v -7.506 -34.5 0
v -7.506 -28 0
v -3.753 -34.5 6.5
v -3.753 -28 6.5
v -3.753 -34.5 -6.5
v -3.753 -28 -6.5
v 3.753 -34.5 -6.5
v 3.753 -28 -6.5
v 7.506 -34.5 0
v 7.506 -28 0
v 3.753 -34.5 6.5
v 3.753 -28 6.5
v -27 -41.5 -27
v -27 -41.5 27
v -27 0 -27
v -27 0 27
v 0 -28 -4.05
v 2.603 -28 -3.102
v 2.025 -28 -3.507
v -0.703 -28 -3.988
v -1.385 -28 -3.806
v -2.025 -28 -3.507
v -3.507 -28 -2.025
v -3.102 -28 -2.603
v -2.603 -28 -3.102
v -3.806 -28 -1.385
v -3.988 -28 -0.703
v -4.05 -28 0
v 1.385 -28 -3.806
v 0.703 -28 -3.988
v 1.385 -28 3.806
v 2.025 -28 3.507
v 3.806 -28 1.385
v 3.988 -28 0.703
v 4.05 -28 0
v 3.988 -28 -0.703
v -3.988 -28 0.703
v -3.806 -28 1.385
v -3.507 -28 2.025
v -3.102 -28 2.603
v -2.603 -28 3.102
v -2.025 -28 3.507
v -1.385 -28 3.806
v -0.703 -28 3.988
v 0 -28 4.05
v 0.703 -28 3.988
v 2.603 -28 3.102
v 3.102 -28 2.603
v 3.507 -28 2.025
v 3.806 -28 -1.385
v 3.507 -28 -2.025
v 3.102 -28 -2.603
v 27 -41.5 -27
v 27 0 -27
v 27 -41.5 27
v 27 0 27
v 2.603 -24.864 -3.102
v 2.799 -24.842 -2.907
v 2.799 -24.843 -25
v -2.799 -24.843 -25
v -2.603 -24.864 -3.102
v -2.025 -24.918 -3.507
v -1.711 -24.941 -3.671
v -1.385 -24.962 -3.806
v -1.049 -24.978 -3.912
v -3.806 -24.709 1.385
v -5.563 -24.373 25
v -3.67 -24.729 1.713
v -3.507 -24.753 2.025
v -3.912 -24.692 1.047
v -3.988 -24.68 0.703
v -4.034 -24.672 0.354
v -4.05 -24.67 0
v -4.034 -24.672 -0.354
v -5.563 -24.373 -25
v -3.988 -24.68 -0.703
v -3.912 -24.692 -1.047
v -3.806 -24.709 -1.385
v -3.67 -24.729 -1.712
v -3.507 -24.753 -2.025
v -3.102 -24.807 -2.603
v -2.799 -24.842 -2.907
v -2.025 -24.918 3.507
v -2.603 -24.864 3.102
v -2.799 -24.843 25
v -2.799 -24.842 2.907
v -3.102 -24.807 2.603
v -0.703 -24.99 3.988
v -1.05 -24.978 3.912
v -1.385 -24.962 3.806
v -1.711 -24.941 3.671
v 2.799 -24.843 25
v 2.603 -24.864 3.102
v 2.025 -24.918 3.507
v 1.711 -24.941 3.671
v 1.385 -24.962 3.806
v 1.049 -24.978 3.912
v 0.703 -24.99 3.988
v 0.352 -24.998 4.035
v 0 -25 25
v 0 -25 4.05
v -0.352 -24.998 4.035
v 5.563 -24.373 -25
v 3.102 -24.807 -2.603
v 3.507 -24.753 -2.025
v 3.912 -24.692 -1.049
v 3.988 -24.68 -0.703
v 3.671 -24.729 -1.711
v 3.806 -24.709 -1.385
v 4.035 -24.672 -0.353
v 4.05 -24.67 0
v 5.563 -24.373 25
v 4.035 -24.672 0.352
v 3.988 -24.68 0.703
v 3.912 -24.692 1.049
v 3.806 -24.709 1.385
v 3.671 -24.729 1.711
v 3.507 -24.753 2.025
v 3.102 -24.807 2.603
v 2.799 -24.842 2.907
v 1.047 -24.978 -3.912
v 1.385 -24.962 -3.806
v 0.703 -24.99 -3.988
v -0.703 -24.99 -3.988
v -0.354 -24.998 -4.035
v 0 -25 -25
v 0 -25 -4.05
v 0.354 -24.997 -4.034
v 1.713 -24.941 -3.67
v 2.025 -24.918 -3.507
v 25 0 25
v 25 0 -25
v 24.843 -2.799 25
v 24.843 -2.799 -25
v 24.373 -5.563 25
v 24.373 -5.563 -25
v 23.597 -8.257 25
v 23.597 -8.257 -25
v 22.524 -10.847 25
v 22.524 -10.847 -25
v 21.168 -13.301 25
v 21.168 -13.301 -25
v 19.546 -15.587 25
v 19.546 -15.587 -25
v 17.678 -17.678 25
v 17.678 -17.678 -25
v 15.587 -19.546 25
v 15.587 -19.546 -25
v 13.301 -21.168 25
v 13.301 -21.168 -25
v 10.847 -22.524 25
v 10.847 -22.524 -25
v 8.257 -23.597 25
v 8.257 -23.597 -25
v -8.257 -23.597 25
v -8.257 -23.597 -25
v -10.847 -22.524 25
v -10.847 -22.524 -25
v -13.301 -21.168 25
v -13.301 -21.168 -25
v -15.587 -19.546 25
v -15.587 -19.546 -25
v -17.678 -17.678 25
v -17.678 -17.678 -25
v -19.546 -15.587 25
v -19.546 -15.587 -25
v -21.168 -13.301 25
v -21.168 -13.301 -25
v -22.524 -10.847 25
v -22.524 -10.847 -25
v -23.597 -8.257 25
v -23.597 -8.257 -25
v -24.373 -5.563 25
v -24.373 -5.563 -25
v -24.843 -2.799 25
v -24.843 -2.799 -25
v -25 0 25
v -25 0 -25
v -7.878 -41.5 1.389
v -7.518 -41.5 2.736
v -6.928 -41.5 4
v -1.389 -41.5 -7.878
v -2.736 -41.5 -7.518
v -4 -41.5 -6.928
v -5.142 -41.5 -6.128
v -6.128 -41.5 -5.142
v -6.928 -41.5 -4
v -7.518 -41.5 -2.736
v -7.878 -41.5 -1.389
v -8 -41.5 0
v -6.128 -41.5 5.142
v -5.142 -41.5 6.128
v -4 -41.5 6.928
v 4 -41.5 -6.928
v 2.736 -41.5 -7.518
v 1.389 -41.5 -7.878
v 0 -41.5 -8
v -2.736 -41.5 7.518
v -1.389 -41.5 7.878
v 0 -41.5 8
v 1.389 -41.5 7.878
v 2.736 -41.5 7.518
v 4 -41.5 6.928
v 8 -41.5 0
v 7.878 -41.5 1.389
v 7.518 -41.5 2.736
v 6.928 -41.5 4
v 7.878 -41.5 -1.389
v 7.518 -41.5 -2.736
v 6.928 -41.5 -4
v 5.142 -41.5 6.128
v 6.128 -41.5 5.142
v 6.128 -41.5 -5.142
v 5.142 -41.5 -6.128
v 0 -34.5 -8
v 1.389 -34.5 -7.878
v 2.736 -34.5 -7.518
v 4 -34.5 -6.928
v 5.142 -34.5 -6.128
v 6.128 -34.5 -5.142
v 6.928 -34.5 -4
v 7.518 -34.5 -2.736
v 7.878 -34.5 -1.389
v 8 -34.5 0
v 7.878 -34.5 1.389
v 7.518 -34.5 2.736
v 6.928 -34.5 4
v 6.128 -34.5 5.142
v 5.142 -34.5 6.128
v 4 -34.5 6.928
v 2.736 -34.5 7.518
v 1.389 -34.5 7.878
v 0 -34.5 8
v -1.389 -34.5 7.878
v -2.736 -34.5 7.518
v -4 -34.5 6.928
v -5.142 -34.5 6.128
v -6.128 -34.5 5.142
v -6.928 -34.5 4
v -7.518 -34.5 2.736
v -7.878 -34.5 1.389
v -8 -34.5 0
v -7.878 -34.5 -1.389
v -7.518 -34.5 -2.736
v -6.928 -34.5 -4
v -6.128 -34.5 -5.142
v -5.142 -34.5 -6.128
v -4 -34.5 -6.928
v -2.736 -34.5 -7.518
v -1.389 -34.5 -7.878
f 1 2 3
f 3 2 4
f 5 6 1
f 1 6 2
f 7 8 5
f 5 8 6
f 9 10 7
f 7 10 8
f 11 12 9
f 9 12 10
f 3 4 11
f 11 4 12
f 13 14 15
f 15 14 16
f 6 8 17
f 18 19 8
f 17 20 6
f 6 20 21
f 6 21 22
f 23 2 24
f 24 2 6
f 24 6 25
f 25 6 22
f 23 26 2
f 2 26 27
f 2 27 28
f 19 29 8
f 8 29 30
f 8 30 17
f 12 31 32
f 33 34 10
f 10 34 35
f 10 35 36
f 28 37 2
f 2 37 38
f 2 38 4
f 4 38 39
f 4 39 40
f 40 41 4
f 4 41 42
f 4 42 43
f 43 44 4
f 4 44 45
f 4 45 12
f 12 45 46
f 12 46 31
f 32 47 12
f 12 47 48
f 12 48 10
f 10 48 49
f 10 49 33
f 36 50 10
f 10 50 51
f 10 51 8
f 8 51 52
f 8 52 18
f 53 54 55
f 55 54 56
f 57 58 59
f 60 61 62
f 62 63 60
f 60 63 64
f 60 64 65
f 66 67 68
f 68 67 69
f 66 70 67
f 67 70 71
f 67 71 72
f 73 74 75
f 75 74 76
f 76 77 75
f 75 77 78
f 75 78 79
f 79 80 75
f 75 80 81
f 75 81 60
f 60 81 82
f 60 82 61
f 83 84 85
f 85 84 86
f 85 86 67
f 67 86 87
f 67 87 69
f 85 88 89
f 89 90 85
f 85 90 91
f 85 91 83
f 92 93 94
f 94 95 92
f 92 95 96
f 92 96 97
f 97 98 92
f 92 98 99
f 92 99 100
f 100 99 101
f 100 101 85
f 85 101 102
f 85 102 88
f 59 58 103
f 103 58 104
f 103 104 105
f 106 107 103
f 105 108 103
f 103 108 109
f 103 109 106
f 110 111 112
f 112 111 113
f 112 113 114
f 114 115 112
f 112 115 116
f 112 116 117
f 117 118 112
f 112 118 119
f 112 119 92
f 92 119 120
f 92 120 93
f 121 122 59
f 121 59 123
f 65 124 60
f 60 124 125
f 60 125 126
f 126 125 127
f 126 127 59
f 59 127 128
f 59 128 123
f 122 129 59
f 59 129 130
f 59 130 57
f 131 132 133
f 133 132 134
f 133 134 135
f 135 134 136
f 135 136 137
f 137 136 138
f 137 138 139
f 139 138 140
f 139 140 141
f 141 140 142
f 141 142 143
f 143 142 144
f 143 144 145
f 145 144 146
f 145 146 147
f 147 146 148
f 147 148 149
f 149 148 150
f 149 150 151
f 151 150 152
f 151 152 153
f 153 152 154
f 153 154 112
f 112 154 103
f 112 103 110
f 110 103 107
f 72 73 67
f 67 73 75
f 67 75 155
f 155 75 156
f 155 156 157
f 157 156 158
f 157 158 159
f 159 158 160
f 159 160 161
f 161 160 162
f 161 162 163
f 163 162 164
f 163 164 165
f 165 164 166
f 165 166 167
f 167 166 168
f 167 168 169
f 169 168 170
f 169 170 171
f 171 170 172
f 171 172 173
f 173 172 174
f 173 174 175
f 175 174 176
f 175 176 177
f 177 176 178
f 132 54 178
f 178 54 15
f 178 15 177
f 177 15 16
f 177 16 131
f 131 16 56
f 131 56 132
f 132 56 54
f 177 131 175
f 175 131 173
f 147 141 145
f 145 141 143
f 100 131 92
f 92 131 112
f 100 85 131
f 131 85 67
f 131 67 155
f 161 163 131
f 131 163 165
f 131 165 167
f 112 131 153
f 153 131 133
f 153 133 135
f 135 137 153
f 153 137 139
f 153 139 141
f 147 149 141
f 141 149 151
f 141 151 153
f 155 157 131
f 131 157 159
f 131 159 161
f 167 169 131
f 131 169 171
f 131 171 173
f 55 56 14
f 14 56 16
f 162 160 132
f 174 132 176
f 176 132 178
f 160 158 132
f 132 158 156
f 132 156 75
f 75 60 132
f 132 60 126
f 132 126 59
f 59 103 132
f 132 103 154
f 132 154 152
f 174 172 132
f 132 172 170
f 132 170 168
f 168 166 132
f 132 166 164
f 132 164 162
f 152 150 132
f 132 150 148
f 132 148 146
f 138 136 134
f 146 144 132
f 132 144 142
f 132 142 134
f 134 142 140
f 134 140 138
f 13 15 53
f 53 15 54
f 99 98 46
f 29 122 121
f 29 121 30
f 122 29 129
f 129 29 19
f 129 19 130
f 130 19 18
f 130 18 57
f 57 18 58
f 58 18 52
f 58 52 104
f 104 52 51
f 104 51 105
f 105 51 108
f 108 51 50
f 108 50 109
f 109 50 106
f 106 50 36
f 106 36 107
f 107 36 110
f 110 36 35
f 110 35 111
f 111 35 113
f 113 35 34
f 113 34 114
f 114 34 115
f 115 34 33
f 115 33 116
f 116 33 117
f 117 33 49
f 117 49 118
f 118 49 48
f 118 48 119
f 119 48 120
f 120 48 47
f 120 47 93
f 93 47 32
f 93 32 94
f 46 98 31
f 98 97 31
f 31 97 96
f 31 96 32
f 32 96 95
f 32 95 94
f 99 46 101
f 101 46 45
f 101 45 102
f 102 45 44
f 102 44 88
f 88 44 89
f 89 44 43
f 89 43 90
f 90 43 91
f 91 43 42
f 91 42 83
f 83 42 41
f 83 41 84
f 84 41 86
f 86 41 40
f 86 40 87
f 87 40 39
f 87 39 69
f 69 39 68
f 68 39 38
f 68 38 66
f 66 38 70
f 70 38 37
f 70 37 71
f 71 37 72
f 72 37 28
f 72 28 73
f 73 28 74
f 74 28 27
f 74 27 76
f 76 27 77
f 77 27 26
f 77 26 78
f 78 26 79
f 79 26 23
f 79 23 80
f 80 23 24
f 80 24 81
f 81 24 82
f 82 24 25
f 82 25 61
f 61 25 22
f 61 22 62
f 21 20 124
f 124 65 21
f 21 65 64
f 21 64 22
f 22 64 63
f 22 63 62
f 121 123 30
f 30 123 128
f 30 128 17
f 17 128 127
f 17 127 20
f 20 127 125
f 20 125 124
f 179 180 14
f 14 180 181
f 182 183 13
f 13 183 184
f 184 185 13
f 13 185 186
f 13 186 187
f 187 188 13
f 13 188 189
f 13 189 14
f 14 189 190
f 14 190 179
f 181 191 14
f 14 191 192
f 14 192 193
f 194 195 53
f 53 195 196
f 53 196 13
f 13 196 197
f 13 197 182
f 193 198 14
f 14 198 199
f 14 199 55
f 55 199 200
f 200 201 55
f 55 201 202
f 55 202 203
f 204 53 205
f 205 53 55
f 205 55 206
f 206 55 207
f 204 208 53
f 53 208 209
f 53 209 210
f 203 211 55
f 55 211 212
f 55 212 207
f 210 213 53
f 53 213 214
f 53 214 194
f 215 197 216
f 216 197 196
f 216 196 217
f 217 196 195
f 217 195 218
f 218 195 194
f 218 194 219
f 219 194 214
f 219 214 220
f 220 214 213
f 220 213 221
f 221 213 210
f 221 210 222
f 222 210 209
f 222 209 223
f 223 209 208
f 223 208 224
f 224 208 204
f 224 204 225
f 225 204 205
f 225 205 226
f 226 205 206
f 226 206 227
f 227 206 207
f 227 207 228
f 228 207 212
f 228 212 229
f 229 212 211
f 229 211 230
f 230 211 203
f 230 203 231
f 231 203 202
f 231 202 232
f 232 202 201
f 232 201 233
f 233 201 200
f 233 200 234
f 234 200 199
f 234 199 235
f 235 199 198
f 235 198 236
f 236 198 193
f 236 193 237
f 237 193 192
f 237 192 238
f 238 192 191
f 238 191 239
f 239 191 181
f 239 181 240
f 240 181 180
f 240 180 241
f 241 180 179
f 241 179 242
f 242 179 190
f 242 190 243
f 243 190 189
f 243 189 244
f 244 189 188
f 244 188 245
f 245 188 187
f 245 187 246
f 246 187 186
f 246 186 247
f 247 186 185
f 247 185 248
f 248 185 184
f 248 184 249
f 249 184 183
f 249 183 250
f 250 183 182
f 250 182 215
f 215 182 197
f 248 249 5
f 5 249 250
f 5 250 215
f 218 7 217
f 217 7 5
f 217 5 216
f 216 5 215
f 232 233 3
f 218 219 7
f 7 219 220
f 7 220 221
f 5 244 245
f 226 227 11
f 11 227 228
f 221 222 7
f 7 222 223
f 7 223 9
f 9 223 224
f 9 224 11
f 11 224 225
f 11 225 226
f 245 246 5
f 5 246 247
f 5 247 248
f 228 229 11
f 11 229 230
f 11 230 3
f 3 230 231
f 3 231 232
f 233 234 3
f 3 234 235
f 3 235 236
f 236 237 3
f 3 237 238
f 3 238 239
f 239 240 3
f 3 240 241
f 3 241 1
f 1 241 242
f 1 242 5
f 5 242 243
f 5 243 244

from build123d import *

# Parameters (mm, degrees)
BOSS_EXTRUDE1_DEPTH = 25
SKETCH2_W           = 54
SKETCH2_H           = 28
BOSS_EXTRUDE2_DEPTH = 2
SKETCH3_W           = 54
SKETCH3_H           = 28
BOSS_EXTRUDE3_DEPTH = 2
SKETCH4_R           = 4.05
CUT_EXTRUDE2_DEPTH  = 48.349762407
SKETCH5_W           = 54
SKETCH5_H           = 54
BOSS_EXTRUDE4_DEPTH = 13.5
SKETCH6_R           = 8
CUT_EXTRUDE3_DEPTH  = 7


with BuildPart() as part:
    # Sketch1 → Boss-Extrude1 (new, symmetric)
    with BuildSketch(Plane.XY):
        with BuildLine():
            Line((25, 0), (27, 0))
            Line((27, 0), (27, -28))
            Line((27, -28), (-27, -28))
            Line((-27, -28), (-27, 0))
            Line((-27, 0), (-25, 0))
            ThreePointArc((-25, 0), (0, -25), (25, 0))
        make_face()
    extrude(amount=BOSS_EXTRUDE1_DEPTH, both=True)

    # Sketch2 → Boss-Extrude2 (add)
    with BuildSketch(Plane.XY.offset(25)):
        with Locations((0, -14)):
            Rectangle(SKETCH2_W, SKETCH2_H)
    extrude(amount=BOSS_EXTRUDE2_DEPTH)

    # Sketch3 → Boss-Extrude3 (add)
    with BuildSketch(Plane(origin=(0, 0, -25), x_dir=(-1, 0, 0), z_dir=(0, 0, -1))):
        with Locations((0, -14)):
            Rectangle(SKETCH3_W, SKETCH3_H)
    extrude(amount=BOSS_EXTRUDE3_DEPTH)

    # Sketch4 → Cut-Extrude2 (cut, through all)
    with BuildSketch(Plane.XZ.offset(28)):
        with Locations(Location((0, 0, 0), (0, 0, 270))):
            Circle(SKETCH4_R)
    extrude(amount=-CUT_EXTRUDE2_DEPTH, mode=Mode.SUBTRACT)

    # Sketch5 → Boss-Extrude4 (add)
    with BuildSketch(Plane.XZ.offset(28)):
        Rectangle(SKETCH5_W, SKETCH5_H)
        Polygon((-7.505553499, 0), (-3.75277675, -6.5), (3.75277675, -6.5), (7.505553499, 0), (3.75277675, 6.5), (-3.75277675, 6.5), align=None, mode=Mode.SUBTRACT)
    extrude(amount=BOSS_EXTRUDE4_DEPTH)

    # Sketch6 → Cut-Extrude3 (cut)
    with BuildSketch(Plane.XZ.offset(41.5)):
        with Locations(Location((0, 0, 0), (0, 0, 270))):
            Circle(SKETCH6_R)
    extrude(amount=-CUT_EXTRUDE3_DEPTH, mode=Mode.SUBTRACT)


solid = part.part
